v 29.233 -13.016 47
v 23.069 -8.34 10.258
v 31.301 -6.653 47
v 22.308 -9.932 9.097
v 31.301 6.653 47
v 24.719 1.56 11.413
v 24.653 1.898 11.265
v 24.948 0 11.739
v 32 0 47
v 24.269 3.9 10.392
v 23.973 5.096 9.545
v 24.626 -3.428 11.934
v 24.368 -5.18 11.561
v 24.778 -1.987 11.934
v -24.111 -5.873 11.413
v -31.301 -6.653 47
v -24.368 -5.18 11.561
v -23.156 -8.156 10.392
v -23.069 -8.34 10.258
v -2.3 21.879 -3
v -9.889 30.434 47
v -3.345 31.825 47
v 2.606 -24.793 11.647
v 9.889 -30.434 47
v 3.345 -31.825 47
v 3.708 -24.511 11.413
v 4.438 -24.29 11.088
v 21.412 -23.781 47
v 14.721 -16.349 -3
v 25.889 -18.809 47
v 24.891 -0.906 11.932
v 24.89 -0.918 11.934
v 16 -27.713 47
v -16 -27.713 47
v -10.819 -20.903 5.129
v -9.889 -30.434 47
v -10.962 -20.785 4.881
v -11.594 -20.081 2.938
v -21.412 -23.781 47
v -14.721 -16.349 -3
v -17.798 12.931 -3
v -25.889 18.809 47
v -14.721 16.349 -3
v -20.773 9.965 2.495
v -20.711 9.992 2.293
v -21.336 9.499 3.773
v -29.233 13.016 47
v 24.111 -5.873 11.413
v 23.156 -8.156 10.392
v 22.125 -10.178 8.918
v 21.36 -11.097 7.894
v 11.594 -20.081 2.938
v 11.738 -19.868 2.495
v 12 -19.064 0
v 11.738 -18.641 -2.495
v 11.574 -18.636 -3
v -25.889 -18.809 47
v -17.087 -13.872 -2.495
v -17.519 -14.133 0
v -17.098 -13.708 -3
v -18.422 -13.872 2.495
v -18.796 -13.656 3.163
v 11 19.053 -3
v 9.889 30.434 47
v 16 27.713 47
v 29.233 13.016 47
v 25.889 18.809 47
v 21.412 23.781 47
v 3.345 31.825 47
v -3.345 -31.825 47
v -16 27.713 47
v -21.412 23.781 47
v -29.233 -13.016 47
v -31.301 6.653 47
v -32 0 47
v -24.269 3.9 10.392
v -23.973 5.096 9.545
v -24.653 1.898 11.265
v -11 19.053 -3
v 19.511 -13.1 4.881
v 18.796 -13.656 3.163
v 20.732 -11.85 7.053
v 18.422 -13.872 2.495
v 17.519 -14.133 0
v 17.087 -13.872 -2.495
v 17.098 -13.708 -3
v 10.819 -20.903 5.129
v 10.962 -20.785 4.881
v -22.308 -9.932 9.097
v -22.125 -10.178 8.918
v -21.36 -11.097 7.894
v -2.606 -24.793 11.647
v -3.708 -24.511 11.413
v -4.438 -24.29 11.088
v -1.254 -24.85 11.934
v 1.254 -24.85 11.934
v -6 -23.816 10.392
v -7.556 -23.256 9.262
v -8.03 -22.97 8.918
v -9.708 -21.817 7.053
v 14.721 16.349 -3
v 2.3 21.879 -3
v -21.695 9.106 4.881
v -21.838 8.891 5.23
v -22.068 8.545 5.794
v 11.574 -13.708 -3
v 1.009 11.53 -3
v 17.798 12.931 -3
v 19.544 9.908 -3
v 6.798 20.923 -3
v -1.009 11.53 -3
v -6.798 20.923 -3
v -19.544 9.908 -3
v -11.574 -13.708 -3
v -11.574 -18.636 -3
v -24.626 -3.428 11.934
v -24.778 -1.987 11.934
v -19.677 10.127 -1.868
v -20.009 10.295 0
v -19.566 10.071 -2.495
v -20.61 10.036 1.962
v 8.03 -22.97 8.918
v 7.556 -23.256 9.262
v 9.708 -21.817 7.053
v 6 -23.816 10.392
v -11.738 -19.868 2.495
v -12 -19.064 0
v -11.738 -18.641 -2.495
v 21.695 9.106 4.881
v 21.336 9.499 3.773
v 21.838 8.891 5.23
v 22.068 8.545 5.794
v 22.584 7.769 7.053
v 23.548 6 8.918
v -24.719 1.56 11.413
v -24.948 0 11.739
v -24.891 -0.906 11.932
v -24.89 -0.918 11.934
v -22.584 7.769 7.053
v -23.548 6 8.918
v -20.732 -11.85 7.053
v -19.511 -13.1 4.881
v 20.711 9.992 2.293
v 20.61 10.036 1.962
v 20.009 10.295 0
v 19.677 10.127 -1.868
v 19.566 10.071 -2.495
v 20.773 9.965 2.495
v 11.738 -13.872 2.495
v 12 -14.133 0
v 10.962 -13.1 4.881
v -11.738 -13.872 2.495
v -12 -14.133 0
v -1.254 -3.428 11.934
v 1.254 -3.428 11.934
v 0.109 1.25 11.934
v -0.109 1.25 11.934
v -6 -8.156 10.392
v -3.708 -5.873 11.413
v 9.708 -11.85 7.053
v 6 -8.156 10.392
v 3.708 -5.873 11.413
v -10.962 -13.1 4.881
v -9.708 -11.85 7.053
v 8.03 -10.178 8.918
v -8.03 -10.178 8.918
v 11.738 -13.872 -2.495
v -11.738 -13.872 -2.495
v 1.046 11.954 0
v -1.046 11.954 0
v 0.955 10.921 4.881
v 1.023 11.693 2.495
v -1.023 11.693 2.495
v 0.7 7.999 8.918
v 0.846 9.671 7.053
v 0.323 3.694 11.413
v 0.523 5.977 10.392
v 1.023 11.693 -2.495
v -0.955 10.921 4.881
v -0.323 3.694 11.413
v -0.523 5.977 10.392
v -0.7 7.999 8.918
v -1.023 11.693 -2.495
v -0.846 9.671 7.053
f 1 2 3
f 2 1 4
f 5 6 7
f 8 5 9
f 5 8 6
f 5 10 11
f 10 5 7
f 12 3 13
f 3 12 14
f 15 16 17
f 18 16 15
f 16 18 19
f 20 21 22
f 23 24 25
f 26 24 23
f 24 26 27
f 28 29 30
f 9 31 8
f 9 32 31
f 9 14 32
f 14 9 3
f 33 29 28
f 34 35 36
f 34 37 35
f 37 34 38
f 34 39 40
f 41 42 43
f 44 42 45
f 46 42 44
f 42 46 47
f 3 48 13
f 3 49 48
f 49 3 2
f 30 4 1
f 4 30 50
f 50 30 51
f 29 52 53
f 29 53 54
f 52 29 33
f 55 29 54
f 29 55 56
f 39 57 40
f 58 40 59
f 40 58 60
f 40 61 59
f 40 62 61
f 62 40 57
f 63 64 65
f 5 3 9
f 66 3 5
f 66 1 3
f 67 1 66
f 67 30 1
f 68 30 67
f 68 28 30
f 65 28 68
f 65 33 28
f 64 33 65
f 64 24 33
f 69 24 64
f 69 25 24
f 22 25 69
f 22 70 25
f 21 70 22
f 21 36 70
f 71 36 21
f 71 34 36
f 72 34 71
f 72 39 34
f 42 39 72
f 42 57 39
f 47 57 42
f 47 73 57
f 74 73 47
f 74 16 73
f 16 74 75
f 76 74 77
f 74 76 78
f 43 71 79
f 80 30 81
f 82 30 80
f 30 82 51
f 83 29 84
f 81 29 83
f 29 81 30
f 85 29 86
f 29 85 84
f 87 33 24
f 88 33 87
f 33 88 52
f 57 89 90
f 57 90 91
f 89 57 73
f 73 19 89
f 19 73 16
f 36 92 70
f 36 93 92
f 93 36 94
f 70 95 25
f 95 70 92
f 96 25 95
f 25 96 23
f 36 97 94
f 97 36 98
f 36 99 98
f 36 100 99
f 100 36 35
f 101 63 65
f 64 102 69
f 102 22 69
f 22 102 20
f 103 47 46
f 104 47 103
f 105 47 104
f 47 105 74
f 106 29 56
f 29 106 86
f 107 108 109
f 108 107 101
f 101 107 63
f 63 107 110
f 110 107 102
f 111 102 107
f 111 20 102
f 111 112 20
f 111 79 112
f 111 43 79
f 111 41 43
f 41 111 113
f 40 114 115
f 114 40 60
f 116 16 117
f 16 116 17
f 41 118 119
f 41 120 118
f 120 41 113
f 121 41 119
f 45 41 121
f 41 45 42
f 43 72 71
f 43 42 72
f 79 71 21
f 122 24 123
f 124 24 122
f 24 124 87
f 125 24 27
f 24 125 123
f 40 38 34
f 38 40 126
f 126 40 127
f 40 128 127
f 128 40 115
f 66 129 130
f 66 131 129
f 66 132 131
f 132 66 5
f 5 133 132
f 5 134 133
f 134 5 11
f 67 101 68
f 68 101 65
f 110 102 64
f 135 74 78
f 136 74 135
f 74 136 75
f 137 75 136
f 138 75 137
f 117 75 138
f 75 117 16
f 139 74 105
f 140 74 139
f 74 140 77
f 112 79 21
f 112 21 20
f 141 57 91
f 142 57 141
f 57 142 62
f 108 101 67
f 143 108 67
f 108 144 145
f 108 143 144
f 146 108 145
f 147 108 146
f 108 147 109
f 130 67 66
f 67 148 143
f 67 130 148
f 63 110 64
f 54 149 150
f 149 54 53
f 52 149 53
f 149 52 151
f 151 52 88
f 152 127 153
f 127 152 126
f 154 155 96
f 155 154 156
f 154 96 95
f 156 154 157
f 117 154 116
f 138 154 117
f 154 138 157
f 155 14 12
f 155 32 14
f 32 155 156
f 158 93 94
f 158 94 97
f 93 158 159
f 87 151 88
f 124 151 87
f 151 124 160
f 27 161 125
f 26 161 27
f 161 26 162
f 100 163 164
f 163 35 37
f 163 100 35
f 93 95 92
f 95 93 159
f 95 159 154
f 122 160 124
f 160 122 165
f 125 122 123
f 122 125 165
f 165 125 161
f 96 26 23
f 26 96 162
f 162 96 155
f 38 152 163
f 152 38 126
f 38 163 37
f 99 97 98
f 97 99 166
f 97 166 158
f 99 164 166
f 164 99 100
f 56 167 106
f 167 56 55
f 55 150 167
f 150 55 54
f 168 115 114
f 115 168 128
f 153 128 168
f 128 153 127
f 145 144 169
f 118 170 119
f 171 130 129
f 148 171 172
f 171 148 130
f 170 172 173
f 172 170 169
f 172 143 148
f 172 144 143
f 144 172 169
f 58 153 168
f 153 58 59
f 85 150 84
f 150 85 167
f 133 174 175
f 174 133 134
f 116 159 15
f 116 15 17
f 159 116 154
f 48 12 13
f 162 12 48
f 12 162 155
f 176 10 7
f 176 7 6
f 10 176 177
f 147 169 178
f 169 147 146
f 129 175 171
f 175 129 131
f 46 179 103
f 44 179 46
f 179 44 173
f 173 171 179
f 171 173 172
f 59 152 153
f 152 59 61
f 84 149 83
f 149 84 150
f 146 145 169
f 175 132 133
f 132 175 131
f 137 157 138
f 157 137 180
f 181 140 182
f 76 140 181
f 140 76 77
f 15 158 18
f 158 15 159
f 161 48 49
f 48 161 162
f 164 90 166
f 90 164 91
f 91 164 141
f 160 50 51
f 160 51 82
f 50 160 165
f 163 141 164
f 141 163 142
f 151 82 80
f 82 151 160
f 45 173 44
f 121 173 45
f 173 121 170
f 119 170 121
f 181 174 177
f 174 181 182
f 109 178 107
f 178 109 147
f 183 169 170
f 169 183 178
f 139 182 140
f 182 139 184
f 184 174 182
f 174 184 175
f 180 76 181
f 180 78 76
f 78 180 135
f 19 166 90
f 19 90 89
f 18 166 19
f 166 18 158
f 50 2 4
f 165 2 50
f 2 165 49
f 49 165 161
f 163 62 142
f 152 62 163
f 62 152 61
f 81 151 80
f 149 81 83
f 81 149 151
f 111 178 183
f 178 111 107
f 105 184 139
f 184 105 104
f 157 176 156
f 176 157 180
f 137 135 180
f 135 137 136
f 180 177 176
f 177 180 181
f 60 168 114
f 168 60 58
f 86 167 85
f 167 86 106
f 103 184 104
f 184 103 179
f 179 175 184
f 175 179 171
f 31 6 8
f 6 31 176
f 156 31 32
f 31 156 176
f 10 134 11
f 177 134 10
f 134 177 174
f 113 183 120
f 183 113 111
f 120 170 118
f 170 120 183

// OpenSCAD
difference(){
   translate([0,0,-3]) cylinder(50,22,32);
rotate([90,0,0])cylinder(50,12,12);
    hull(){
rotate([0,0,85])rotate([90,0,0])cylinder(25,12,12);
rotate([0,0,-85])rotate([90,0,0])cylinder(25,12,12);
}}
